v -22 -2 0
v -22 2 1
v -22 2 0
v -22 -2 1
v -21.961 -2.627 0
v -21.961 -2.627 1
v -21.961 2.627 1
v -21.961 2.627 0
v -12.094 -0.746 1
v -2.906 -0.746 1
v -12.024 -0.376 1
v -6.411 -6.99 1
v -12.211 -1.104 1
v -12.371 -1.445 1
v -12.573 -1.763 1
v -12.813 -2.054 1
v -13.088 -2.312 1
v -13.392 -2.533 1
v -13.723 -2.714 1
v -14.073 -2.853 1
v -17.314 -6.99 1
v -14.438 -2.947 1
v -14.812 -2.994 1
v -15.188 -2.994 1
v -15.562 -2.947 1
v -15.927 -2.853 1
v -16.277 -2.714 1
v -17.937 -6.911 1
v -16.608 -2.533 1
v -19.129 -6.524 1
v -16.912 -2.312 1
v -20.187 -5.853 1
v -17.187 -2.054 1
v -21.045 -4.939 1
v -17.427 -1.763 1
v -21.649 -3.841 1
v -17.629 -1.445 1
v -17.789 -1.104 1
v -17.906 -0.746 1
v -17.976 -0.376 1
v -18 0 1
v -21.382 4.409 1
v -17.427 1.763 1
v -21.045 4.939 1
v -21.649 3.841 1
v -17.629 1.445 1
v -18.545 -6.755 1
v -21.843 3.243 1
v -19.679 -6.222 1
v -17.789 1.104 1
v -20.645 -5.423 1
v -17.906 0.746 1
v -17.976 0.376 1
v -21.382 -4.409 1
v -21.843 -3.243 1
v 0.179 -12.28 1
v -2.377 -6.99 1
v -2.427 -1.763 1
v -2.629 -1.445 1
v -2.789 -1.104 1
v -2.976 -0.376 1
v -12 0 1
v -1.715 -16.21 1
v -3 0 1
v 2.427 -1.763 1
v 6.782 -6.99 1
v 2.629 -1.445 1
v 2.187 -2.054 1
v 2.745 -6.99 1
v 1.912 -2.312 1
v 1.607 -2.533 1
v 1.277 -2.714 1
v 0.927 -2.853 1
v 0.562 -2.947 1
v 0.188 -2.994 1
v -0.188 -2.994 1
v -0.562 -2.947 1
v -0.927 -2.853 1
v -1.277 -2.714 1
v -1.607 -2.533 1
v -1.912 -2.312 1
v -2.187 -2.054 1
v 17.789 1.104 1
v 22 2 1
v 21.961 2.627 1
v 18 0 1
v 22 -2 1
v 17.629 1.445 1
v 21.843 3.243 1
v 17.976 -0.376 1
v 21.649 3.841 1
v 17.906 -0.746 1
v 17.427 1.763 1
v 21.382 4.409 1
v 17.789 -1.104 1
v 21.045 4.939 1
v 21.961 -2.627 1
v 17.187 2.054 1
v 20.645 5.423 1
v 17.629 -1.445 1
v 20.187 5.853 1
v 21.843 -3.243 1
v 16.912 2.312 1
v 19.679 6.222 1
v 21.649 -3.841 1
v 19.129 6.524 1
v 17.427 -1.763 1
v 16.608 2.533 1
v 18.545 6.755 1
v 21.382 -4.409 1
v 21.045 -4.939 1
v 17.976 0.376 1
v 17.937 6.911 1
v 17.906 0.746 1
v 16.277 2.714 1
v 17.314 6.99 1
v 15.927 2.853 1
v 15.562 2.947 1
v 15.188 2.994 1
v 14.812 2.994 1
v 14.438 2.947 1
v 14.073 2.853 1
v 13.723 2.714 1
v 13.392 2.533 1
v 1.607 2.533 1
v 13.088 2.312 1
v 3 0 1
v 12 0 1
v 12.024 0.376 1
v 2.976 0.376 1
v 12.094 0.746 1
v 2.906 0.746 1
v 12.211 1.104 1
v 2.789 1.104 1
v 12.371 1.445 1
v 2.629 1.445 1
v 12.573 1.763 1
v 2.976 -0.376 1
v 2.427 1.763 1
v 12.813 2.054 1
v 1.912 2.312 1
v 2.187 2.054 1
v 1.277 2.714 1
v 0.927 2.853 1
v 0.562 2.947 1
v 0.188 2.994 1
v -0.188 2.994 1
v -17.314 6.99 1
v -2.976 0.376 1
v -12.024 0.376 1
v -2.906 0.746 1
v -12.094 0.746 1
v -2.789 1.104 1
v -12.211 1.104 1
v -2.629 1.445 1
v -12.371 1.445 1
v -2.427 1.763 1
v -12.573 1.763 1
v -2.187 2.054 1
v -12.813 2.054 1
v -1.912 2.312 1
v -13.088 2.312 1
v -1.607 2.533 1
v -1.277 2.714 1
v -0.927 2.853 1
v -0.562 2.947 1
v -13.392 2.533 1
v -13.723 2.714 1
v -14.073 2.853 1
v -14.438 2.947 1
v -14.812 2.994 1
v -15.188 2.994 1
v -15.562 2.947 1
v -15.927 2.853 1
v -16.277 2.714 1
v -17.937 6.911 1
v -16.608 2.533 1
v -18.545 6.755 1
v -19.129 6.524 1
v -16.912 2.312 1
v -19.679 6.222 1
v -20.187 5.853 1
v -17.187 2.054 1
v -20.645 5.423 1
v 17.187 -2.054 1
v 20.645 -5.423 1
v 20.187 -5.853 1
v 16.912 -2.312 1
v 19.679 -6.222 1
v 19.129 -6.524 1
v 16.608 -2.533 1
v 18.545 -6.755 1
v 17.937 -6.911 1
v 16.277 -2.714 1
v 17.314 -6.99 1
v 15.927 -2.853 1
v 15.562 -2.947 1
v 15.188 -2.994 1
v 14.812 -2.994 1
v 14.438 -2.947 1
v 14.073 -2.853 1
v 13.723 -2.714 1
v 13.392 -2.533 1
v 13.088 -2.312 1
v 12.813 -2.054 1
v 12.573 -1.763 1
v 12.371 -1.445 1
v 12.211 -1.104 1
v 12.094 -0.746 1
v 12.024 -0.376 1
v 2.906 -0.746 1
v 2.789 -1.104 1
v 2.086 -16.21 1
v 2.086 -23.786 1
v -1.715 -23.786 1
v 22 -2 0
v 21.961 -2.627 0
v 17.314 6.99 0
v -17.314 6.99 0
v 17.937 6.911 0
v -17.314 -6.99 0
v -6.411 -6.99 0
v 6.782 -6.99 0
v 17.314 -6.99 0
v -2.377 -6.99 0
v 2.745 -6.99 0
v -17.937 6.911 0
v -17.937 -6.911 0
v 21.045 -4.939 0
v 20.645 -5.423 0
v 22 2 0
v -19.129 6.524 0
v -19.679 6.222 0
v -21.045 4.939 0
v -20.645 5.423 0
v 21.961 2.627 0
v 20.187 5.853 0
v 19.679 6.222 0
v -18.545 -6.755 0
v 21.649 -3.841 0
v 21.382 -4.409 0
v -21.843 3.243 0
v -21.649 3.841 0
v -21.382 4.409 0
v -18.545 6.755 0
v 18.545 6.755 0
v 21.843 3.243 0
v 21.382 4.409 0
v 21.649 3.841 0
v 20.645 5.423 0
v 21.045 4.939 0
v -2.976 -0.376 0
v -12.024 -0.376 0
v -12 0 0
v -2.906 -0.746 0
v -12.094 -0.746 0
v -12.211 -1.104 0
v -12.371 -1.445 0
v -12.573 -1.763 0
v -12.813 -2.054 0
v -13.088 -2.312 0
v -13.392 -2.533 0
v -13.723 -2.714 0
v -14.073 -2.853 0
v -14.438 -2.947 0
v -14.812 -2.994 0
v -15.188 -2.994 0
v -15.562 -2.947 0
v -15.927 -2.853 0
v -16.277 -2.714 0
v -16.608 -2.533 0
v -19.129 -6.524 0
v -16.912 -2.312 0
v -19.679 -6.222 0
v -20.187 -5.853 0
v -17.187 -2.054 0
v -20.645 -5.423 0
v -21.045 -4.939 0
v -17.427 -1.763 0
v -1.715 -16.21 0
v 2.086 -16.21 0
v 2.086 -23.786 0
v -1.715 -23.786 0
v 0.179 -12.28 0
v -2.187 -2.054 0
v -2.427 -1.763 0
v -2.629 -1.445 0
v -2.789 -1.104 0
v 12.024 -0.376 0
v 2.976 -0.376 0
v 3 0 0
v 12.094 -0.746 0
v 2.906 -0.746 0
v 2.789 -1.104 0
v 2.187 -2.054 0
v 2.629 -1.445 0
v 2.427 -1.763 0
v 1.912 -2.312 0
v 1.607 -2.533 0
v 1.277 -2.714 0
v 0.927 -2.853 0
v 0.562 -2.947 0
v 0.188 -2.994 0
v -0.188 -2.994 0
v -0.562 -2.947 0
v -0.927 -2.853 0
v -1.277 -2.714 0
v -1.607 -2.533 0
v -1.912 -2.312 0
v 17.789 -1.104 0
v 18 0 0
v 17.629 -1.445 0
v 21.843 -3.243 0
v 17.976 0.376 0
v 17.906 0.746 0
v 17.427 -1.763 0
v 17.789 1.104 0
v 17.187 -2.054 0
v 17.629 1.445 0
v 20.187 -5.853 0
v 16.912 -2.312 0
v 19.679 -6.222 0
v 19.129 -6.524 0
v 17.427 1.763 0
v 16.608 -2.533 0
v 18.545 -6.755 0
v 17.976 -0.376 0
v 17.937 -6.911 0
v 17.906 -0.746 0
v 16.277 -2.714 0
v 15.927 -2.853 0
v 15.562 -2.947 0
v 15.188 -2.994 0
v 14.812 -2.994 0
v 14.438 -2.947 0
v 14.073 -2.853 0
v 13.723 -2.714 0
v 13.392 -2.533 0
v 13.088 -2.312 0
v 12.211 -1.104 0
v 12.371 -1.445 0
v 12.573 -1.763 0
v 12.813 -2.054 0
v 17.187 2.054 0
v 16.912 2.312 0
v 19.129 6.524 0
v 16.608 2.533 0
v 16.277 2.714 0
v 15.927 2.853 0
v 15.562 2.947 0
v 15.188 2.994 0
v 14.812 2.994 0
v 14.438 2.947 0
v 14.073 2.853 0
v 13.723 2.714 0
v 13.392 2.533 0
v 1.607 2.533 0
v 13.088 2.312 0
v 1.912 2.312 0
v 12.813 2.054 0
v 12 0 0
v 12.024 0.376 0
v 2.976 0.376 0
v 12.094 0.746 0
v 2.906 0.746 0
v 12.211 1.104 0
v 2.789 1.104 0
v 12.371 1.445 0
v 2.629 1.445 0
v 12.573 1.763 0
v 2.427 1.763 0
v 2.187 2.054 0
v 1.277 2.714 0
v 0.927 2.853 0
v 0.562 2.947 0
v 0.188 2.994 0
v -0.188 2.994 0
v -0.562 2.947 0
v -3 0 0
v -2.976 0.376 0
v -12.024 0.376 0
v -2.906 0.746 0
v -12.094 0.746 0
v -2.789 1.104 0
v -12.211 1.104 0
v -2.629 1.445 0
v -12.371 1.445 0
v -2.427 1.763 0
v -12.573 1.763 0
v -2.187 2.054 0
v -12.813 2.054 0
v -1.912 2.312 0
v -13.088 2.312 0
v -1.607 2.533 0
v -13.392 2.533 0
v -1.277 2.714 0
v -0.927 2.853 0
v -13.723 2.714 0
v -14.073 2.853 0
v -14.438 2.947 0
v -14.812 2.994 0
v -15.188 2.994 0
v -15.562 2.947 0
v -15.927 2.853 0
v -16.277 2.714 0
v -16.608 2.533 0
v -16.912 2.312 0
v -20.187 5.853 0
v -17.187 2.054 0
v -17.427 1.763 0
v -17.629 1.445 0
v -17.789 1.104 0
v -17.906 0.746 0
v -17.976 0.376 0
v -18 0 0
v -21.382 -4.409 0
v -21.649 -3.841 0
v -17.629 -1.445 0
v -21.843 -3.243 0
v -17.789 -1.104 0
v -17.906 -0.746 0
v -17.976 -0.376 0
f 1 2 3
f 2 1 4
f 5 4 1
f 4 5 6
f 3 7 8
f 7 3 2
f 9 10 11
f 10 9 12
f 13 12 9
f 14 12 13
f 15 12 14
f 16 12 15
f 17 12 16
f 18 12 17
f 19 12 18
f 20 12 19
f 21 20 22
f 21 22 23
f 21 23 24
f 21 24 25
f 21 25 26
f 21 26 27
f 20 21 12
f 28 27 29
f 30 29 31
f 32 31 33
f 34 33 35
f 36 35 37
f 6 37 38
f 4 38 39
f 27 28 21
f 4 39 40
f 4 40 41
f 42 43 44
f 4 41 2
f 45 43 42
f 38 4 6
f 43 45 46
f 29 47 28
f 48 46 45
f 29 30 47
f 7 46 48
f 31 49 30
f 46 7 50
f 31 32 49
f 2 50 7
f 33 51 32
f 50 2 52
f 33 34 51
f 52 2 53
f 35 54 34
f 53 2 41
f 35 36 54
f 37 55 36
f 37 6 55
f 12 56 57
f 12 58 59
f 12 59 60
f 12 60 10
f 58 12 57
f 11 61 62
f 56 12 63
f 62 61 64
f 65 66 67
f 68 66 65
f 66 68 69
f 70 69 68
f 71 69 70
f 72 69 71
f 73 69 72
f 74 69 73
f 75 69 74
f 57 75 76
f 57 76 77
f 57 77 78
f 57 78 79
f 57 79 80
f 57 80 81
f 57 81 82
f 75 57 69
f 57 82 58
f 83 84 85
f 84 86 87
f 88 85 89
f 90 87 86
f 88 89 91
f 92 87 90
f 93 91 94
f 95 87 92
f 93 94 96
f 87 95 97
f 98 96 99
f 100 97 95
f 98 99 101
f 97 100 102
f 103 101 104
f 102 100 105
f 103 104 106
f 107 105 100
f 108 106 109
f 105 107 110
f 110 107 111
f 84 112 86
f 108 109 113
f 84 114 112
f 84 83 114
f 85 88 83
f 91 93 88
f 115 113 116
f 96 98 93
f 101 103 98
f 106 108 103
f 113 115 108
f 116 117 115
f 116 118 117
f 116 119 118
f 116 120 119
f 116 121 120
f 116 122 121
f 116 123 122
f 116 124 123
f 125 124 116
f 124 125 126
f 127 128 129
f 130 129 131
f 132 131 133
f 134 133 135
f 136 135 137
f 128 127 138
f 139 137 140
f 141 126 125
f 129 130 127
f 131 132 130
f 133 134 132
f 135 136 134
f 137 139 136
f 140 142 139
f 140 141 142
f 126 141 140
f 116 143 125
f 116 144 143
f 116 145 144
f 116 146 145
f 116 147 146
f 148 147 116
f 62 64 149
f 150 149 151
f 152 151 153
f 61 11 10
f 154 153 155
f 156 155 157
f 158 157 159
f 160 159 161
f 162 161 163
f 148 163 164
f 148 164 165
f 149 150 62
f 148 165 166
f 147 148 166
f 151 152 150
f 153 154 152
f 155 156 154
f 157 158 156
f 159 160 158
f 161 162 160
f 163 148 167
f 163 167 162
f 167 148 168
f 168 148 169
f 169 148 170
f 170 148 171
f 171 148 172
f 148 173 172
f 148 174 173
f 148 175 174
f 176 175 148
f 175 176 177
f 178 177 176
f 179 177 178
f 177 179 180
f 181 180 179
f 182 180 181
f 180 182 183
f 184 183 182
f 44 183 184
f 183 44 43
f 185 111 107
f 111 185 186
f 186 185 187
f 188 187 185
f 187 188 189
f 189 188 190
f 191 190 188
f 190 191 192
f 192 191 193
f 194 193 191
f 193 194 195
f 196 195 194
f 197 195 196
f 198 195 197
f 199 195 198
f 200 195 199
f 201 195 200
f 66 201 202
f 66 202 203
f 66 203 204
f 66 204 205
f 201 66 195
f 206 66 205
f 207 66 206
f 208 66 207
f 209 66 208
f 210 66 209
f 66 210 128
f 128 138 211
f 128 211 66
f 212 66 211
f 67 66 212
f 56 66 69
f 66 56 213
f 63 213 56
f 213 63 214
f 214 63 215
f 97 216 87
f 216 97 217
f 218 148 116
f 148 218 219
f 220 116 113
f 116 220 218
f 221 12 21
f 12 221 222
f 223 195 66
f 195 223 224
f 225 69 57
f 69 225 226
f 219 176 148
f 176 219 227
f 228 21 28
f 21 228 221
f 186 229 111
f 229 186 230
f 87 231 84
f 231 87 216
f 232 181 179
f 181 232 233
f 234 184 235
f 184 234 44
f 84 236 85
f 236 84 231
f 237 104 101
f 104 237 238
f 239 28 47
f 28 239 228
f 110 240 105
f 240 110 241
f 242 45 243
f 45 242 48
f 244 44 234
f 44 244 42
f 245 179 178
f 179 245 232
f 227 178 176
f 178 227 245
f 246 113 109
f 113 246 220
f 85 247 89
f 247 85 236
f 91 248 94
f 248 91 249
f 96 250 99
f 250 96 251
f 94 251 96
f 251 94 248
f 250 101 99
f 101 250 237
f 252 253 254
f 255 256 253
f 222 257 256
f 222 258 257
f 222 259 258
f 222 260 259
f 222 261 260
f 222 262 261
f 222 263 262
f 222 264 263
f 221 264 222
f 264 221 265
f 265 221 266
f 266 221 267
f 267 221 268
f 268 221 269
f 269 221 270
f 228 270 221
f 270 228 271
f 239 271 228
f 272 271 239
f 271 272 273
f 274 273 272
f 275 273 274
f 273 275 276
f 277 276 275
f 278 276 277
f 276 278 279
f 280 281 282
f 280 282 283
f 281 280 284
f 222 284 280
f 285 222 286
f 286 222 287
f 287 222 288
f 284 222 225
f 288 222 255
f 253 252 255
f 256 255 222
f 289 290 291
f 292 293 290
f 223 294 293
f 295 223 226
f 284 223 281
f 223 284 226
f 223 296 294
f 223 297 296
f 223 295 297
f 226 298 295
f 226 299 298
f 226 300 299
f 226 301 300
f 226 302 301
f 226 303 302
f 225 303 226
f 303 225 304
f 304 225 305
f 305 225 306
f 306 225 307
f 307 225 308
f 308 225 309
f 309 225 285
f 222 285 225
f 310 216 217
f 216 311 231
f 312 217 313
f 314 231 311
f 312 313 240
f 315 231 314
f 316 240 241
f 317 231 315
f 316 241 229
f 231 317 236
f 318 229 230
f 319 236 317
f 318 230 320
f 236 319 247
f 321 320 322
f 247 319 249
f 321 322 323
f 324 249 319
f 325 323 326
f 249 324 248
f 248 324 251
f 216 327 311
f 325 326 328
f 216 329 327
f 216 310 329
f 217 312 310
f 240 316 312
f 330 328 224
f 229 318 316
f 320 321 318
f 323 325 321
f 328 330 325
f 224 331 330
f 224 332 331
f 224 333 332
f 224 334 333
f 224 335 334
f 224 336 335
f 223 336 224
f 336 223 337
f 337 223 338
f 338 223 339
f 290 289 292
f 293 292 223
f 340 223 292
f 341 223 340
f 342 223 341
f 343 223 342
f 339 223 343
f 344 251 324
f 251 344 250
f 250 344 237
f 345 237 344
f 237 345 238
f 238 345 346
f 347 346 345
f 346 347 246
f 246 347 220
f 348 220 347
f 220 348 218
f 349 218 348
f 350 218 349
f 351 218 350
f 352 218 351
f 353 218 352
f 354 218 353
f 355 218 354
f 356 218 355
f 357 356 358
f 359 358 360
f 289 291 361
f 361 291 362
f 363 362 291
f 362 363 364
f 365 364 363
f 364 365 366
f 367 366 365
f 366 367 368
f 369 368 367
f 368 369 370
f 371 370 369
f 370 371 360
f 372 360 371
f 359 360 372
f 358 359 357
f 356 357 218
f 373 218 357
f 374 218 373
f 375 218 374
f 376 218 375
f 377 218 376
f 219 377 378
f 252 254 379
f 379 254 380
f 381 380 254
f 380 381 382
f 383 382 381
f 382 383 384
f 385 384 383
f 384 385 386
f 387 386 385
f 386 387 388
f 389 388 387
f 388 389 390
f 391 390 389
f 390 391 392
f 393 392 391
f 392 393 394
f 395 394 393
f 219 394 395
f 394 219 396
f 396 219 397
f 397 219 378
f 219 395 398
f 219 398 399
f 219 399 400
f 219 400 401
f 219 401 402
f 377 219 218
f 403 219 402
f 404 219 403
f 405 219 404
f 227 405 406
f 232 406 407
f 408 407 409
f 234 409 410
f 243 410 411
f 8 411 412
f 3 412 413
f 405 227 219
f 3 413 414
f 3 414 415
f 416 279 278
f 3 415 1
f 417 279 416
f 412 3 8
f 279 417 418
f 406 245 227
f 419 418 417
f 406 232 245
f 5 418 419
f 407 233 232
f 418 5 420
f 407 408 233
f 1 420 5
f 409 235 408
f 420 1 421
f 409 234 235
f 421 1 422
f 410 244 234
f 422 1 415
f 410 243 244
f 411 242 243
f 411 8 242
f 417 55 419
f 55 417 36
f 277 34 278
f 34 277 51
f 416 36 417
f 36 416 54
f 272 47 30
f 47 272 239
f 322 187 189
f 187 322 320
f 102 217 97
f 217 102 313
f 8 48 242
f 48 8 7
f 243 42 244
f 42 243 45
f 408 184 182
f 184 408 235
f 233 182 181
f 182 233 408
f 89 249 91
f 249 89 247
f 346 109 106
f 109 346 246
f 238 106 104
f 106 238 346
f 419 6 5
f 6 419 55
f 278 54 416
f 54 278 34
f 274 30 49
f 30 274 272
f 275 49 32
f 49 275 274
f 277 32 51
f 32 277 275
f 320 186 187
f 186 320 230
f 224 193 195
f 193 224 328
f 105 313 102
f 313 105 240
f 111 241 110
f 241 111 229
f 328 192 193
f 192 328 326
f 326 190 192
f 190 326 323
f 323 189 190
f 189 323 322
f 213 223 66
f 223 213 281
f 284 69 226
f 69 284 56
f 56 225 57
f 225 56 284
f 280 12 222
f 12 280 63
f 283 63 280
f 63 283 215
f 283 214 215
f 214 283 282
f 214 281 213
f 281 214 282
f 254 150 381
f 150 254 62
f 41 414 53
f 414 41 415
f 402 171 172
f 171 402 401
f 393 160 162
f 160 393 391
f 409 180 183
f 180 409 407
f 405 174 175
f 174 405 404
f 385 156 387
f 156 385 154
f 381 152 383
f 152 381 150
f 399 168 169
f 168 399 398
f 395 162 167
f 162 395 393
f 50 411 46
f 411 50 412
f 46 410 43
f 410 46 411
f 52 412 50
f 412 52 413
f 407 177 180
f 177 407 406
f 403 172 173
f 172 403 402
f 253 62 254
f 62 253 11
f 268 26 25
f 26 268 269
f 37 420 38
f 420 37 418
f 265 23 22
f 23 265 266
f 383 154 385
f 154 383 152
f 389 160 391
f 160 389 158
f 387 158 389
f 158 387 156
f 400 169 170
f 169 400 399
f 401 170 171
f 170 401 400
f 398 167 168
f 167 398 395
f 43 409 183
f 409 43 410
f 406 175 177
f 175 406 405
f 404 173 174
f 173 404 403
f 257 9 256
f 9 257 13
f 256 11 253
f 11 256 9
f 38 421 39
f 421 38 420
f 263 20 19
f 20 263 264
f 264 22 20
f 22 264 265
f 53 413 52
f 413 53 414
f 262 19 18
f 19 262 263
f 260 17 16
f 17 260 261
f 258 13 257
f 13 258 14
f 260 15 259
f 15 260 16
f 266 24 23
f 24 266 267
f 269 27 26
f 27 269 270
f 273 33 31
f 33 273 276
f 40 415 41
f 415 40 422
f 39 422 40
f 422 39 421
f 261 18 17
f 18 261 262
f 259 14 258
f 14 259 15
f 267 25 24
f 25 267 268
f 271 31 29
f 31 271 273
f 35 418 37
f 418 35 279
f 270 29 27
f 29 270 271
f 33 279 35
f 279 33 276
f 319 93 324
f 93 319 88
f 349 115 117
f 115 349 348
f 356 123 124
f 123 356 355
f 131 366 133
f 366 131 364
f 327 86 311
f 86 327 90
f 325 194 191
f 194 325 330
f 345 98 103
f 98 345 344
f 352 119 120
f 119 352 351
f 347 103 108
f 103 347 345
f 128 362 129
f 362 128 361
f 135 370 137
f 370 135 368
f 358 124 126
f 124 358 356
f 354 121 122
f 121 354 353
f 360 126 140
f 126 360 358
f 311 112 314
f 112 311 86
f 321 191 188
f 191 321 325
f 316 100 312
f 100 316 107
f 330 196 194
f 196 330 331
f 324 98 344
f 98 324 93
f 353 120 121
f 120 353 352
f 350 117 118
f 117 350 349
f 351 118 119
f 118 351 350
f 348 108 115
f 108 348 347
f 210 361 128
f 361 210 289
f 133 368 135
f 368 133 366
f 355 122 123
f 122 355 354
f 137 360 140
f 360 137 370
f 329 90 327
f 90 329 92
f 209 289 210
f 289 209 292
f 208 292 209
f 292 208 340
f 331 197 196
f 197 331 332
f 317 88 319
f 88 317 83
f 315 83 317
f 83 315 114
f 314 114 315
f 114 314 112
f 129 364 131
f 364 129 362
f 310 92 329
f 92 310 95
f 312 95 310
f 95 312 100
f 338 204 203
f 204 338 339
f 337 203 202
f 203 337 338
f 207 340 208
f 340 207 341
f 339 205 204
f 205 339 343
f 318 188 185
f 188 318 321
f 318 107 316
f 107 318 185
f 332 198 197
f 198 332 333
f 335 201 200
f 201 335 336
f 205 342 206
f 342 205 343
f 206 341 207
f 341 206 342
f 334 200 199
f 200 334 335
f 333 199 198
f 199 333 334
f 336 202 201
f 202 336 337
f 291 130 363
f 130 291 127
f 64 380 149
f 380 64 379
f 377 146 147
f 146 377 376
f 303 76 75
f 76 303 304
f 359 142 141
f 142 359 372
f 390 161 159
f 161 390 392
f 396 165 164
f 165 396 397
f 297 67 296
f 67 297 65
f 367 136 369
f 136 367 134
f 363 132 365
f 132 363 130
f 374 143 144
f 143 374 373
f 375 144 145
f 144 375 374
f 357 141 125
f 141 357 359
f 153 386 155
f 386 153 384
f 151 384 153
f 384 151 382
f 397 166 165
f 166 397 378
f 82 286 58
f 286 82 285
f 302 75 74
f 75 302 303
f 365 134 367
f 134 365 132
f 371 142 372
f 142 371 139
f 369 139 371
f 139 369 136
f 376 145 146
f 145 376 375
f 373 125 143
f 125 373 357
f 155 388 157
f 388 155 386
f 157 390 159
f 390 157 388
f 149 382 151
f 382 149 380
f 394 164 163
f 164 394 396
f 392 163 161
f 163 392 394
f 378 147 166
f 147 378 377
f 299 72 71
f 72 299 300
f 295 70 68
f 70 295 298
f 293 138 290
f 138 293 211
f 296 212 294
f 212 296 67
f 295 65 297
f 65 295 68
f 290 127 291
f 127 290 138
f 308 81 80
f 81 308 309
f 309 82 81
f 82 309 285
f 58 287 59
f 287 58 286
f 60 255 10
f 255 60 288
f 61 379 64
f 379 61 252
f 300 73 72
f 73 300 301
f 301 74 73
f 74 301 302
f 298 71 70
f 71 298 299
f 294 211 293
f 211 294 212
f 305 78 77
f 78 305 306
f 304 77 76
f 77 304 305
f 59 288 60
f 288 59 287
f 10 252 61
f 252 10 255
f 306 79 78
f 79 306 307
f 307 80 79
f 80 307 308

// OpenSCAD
$fn = 50;


difference() {
	union() {
		translate(v = [0, 0, 0]) {
			rotate(a = [0, 0, 0]) {
				hull() {
					translate(v = [-17.0000000000, 2.0000000000, 0]) {
						rotate(a = [0, 0, 0]) {
							translate(v = [0, 0, 0]) {
								rotate(a = [0, 0, 0]) {
									cylinder(h = 1, r = 5);
								}
							}
						}
					}
					translate(v = [17.0000000000, 2.0000000000, 0]) {
						rotate(a = [0, 0, 0]) {
							translate(v = [0, 0, 0]) {
								rotate(a = [0, 0, 0]) {
									cylinder(h = 1, r = 5);
								}
							}
						}
					}
					translate(v = [-17.0000000000, -2.0000000000, 0]) {
						rotate(a = [0, 0, 0]) {
							translate(v = [0, 0, 0]) {
								rotate(a = [0, 0, 0]) {
									cylinder(h = 1, r = 5);
								}
							}
						}
					}
					translate(v = [17.0000000000, -2.0000000000, 0]) {
						rotate(a = [0, 0, 0]) {
							translate(v = [0, 0, 0]) {
								rotate(a = [0, 0, 0]) {
									cylinder(h = 1, r = 5);
								}
							}
						}
					}
				}
			}
		}
		translate(v = [0, -5, 0]) {
			rotate(a = [0, 0, 0]) {
				linear_extrude(height = 1) {
					text(font = "DejaVu Sans Mono:style=Bold", halign = "center", size = 19.0000000000, text = "Y", valign = "top");
				}
			}
		}
	}
	union() {
		translate(v = [-15.0000000000, 0.0000000000, -125.0000000000]) {
			rotate(a = [0, 0, 0]) {
				cylinder(h = 250, r = 3.0000000000);
			}
		}
		translate(v = [15.0000000000, 0.0000000000, -125.0000000000]) {
			rotate(a = [0, 0, 0]) {
				cylinder(h = 250, r = 3.0000000000);
			}
		}
		translate(v = [15.0000000000, 0.0000000000, -125.0000000000]) {
			rotate(a = [0, 0, 0]) {
				cylinder(h = 250, r = 3.0000000000);
			}
		}
		translate(v = [0, 0, -125.0000000000]) {
			rotate(a = [0, 0, 0]) {
				cylinder(h = 250, r = 3.0000000000);
			}
		}
	}
}
